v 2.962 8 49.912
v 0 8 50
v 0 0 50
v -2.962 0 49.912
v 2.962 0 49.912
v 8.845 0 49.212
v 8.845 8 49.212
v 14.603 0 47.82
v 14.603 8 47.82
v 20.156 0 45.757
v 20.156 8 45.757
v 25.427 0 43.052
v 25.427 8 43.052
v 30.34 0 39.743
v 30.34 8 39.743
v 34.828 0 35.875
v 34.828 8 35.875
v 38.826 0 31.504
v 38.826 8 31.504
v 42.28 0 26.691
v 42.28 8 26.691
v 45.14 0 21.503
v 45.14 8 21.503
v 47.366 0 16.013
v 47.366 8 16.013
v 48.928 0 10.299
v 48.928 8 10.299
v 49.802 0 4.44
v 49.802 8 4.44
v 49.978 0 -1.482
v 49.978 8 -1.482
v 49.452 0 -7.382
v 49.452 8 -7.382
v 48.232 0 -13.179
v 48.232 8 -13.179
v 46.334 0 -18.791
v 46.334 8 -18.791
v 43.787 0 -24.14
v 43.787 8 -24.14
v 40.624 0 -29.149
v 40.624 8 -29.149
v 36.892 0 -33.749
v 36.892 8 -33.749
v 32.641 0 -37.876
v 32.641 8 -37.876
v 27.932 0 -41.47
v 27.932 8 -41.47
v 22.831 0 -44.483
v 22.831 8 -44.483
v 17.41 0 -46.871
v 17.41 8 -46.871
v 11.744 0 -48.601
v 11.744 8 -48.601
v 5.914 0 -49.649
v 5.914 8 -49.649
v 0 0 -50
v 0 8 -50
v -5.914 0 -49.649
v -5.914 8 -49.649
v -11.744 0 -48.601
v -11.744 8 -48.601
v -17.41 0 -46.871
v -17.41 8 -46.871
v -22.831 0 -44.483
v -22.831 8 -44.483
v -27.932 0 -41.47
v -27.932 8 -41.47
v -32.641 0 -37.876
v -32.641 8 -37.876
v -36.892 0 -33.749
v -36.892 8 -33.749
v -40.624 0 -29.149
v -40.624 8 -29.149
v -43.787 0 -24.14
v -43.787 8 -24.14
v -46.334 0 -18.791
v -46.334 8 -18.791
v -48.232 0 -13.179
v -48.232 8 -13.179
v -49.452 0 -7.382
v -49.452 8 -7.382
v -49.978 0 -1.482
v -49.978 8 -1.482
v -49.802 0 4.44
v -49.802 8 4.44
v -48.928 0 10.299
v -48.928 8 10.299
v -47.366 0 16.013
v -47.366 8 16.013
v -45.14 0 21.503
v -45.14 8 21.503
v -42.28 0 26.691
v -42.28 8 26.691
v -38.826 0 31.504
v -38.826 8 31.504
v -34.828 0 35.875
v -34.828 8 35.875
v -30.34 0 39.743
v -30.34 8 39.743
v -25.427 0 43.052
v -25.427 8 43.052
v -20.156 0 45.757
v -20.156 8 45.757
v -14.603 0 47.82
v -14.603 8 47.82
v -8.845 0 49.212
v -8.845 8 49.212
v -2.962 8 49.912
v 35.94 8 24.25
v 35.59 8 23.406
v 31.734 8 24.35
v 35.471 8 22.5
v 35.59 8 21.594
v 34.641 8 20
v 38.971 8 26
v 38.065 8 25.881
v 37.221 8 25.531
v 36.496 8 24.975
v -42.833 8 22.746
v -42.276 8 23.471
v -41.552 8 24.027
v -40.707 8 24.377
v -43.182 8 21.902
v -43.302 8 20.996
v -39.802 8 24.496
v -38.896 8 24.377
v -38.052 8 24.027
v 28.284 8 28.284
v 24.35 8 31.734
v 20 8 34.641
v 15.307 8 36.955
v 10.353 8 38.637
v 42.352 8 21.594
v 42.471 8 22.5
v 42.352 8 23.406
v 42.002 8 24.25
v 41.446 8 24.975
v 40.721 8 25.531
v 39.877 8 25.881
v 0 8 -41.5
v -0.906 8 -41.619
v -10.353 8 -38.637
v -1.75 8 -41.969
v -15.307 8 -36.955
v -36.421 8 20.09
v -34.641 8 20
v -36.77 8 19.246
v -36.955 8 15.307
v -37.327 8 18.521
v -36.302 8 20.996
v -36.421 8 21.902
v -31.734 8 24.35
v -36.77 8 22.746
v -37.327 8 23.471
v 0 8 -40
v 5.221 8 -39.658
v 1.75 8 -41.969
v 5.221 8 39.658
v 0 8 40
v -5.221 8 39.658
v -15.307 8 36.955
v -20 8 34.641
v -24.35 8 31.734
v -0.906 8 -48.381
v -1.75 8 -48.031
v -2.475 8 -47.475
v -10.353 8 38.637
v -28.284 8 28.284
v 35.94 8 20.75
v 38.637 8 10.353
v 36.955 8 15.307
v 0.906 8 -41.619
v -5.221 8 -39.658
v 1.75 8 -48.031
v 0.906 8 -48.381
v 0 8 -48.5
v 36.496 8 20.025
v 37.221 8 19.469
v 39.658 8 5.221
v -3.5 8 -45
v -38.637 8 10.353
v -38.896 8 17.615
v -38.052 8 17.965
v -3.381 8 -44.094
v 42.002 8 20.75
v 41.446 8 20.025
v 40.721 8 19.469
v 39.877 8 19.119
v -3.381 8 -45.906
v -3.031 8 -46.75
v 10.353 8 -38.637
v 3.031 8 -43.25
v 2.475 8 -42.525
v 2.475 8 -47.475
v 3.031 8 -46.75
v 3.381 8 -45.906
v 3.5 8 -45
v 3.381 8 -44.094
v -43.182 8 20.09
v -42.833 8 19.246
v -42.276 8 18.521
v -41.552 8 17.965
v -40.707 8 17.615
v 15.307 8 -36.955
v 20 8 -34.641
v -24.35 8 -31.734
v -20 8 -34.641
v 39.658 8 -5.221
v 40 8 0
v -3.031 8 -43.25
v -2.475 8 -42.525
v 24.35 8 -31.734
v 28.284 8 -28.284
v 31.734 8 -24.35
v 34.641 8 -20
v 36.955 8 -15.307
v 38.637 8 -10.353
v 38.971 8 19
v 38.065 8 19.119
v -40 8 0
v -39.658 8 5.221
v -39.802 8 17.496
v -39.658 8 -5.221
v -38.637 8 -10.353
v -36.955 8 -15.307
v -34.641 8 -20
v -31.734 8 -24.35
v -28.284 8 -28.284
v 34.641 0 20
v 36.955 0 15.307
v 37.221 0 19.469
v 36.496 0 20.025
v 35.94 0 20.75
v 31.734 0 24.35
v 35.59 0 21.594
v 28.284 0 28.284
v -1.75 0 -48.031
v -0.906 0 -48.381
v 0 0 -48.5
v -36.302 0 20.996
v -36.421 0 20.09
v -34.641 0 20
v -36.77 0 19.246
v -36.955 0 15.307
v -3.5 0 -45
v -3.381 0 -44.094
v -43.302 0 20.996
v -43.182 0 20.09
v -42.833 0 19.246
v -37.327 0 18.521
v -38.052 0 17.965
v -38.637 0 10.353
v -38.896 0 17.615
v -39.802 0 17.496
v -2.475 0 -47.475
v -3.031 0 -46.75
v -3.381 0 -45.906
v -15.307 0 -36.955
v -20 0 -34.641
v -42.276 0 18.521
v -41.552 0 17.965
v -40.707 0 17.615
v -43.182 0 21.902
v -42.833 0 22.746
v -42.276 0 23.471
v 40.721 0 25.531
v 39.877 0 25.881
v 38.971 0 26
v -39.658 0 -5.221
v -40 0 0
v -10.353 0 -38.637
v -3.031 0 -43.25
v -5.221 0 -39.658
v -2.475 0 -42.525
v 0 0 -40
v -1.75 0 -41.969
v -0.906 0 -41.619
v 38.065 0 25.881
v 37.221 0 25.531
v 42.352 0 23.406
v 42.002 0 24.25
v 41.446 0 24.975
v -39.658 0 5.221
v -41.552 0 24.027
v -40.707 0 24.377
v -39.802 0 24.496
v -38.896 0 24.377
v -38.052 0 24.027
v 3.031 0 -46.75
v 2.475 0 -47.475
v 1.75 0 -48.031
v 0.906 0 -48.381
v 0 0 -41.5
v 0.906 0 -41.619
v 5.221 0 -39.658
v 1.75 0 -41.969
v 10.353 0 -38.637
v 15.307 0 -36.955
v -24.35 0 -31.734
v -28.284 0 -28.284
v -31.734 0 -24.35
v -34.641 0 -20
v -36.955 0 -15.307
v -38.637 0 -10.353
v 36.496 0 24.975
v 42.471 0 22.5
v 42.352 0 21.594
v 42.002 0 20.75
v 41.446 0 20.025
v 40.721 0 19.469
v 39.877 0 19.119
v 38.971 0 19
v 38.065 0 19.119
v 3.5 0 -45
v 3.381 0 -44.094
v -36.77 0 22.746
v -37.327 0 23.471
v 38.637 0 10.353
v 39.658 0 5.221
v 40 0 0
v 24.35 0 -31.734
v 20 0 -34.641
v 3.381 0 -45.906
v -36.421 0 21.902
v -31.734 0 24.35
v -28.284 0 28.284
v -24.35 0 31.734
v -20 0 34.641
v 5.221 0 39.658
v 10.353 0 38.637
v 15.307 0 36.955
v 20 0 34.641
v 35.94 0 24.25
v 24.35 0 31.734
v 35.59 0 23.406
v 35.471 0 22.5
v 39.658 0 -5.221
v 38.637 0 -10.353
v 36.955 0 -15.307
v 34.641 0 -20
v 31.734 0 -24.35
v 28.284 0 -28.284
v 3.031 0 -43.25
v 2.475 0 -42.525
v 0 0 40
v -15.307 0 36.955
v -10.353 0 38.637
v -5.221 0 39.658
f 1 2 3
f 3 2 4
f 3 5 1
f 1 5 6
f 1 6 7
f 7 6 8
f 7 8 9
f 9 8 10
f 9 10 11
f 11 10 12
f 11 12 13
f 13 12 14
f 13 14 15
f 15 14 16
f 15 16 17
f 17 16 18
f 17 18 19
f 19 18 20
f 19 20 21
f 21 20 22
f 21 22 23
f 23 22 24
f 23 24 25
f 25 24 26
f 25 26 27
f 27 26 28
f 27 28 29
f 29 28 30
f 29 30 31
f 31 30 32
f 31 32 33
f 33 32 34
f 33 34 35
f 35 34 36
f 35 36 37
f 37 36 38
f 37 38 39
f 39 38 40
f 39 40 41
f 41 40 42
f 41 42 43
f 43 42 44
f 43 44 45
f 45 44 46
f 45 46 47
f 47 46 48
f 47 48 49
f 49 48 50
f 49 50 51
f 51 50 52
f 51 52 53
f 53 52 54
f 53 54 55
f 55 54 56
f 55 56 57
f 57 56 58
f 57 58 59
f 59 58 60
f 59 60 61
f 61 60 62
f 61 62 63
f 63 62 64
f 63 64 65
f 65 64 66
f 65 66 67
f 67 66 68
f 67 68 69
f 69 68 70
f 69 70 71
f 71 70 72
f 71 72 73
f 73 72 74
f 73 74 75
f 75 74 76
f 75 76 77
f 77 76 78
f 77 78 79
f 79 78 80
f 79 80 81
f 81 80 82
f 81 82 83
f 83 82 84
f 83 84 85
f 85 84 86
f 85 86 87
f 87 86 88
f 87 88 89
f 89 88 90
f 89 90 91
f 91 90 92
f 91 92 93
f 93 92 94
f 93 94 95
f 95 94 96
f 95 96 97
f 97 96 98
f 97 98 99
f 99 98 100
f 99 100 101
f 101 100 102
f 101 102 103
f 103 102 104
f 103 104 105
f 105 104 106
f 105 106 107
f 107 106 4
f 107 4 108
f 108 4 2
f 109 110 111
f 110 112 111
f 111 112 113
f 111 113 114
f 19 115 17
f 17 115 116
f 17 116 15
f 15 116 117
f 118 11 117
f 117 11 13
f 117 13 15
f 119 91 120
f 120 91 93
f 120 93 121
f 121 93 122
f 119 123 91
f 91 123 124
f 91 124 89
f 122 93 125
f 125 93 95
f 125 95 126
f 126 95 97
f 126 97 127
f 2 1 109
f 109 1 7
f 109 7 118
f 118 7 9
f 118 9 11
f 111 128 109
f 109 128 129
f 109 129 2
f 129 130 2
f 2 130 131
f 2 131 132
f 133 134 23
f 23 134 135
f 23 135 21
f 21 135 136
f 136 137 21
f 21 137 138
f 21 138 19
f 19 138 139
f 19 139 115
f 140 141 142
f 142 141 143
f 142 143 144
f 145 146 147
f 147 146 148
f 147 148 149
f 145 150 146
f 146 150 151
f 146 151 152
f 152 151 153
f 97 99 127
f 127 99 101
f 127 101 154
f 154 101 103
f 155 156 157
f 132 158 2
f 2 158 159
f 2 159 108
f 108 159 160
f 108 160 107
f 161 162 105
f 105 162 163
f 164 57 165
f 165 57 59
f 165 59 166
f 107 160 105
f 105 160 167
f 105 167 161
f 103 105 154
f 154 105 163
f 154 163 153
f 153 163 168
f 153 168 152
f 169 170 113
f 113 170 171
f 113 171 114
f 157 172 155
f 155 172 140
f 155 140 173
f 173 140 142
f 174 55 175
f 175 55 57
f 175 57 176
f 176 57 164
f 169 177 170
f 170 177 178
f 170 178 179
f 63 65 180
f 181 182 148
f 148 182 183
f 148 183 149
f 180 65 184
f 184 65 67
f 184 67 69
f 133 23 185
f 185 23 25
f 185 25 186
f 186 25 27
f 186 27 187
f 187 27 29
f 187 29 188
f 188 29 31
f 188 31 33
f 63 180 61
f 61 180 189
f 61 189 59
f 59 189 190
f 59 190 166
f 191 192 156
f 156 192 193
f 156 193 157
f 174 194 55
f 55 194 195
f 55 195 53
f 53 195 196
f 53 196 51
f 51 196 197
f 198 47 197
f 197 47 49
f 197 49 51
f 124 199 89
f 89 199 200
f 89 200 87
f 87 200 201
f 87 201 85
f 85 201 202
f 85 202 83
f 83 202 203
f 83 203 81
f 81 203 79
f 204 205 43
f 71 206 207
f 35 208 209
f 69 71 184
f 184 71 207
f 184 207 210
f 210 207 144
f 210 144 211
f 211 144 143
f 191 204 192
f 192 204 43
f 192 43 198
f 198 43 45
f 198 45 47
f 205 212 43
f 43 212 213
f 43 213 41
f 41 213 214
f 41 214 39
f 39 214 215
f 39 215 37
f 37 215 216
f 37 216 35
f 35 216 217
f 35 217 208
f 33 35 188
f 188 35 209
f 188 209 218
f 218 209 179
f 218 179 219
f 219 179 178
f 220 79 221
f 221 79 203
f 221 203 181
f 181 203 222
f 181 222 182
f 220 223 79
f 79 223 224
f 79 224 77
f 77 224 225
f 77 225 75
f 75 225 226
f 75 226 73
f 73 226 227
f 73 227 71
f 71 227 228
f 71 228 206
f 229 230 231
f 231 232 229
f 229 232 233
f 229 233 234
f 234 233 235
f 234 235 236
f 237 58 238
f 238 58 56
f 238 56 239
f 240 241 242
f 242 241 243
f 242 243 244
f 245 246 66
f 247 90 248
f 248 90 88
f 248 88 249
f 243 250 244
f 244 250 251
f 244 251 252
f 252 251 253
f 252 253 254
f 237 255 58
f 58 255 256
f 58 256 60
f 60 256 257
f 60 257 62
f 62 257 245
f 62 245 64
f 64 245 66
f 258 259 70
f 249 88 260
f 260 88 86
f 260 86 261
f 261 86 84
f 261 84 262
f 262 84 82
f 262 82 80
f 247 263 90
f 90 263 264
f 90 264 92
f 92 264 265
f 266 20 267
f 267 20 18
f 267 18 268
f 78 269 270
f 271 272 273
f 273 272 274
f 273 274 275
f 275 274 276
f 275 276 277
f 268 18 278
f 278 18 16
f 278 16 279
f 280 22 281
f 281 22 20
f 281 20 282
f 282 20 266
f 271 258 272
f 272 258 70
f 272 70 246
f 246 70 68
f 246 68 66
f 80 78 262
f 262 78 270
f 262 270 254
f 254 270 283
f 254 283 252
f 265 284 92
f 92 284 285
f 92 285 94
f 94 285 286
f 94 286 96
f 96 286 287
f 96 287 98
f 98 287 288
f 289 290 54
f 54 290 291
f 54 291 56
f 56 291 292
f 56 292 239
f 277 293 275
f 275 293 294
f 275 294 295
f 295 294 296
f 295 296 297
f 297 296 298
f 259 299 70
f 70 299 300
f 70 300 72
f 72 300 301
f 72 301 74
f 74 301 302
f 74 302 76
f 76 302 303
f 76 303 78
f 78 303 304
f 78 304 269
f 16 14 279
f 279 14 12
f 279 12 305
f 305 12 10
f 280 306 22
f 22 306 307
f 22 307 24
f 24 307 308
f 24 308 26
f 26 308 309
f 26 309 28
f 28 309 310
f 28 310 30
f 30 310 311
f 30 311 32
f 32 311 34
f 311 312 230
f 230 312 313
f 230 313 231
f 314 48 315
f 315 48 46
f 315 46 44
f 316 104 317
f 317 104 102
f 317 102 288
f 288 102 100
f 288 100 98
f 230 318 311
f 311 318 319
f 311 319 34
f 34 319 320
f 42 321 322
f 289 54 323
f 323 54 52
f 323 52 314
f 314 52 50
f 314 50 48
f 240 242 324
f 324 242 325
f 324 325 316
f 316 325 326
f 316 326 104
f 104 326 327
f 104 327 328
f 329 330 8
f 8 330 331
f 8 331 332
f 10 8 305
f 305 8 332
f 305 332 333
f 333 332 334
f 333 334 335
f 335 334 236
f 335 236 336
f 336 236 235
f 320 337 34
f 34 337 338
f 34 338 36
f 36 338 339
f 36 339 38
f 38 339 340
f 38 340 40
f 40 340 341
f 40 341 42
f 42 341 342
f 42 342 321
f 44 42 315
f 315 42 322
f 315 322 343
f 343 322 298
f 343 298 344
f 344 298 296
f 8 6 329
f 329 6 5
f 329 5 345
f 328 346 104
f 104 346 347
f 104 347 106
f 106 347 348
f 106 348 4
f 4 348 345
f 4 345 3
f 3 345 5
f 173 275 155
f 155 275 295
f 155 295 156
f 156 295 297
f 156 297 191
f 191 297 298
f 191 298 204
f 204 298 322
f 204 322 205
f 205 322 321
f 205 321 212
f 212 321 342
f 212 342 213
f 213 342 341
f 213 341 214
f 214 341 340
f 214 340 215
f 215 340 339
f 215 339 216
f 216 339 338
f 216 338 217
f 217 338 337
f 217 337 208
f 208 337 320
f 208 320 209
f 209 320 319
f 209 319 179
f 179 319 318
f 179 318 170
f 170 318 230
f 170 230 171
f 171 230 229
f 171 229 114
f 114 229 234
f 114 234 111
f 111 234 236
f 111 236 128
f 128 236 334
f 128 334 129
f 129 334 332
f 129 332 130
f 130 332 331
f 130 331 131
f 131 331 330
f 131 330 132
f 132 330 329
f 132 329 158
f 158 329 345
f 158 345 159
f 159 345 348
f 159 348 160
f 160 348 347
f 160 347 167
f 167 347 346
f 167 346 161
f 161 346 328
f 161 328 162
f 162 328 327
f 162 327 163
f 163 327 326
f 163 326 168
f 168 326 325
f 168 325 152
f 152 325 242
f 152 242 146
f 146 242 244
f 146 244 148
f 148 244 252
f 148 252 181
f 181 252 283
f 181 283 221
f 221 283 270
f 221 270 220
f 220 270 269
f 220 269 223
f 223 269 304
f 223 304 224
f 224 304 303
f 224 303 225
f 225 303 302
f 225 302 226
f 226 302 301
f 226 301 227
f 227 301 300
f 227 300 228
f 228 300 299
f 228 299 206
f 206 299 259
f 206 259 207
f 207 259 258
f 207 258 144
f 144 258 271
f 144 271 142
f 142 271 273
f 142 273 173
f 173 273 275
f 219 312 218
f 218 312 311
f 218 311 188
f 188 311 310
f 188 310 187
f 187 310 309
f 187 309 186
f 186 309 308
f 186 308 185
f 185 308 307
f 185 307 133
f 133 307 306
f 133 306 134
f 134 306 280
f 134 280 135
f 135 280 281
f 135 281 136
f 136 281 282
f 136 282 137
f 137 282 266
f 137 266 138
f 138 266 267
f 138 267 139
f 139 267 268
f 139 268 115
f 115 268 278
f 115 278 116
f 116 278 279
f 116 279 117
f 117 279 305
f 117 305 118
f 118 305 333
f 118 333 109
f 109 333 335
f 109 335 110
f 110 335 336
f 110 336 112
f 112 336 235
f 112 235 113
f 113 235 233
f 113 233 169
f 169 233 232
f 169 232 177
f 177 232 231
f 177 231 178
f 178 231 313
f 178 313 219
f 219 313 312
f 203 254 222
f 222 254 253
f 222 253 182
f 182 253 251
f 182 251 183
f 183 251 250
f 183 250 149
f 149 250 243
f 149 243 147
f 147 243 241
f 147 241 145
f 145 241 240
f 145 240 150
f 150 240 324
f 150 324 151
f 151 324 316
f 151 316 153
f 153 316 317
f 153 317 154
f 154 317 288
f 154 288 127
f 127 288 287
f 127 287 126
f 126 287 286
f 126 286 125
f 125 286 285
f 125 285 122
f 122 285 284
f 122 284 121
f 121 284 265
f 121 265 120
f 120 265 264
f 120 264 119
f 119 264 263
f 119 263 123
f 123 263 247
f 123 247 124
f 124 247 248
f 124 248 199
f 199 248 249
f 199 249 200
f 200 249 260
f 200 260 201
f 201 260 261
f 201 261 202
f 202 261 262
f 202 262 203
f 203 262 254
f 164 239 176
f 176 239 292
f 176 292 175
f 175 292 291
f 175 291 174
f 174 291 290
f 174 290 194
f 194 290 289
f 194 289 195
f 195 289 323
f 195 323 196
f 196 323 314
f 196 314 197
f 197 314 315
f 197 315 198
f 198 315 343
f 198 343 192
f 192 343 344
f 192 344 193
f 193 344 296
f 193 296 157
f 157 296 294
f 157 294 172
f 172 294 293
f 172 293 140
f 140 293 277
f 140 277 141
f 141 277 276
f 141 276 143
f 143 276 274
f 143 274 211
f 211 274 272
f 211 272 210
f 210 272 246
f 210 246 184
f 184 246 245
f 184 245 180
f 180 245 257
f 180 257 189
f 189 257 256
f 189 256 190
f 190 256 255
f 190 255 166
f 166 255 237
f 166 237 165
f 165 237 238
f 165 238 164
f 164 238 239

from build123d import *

# Parameters (mm, degrees)
SKIZZE2_R                       = 50
SKIZZE2_R_2                     = 2
AUFSATZ_LINEAR_AUSTRAGEN1_DEPTH = 8
SCHNITT_LINEAR_AUSTRAGEN2_DEPTH = 3
SKIZZE39_R                      = 40
SCHNITT_LINEAR_AUSTRAGEN3_DEPTH = 10
SKIZZE10_R                      = 3.5
SCHNITT_LINEAR_AUSTRAGEN4_DEPTH = 10


with BuildPart() as part:
    # Skizze2 → Aufsatz-Linear austragen1 (new body)
    with BuildSketch(Plane(origin=(0, 0, 0), x_dir=(1, 0, 0), z_dir=(0, 1, 0))):
        with Locations(Location((0, 0, 0), (0, 0, 270))):
            Circle(SKIZZE2_R)
        with Locations(Location((38.97114317, -22.5, 0), (0, 0, 270))):
            Circle(SKIZZE2_R_2, mode=Mode.SUBTRACT)
        with Locations(Location((-39.80150929, -20.996186754, 0), (0, 0, 270))):
            Circle(SKIZZE2_R_2, mode=Mode.SUBTRACT)
        with Locations(Location((0, 45, 0), (0, 0, 270))):
            Circle(SKIZZE2_R_2, mode=Mode.SUBTRACT)
        with Locations(Location((0, -35, 0), (0, 0, 270))):
            Circle(SKIZZE2_R_2, mode=Mode.SUBTRACT)
        with Locations(Location((0, -27.5, 0), (0, 0, 270))):
            Circle(SKIZZE2_R_2, mode=Mode.SUBTRACT)
    extrude(amount=AUFSATZ_LINEAR_AUSTRAGEN1_DEPTH)

    # Skizze9 → Schnitt-Linear austragen2 (cut)
    with BuildSketch(Plane(origin=(0, 8, 0), x_dir=(1, 0, 0), z_dir=(0, 1, 0))):
        with BuildLine():
            Line((-6, -39.531216002), (-6, -22.531216002))
            Line((-6, -22.531216002), (6, -22.531216002))
            Line((6, -22.531216002), (6, -39.531216002))
            ThreePointArc((6, -39.531216002), (0, 39.983959767), (-6, -39.531216002))
        make_face()
    extrude(amount=-SCHNITT_LINEAR_AUSTRAGEN2_DEPTH, mode=Mode.SUBTRACT)

    # Skizze39 → Schnitt-Linear austragen3 (cut)
    with BuildSketch(Plane(origin=(0, 0, 0), x_dir=(-1, 0, 0), z_dir=(0, -1, 0))):
        with Locations(Location((0, 0, 0), (0, 0, 90))):
            Circle(SKIZZE39_R)
    extrude(amount=-SCHNITT_LINEAR_AUSTRAGEN3_DEPTH, mode=Mode.SUBTRACT)

    # Skizze10 → Schnitt-Linear austragen4 (cut)
    with BuildSketch(Plane.XZ):
        with Locations(Location((38.97114317, 22.5, 0), (0, 0, 270))):
            Circle(SKIZZE10_R)
        with Locations(Location((-39.80150929, 20.996186754, 0), (0, 0, 270))):
            Circle(SKIZZE10_R)
        with Locations(Location((0, -45, 0), (0, 0, 270))):
            Circle(SKIZZE10_R)
    extrude(amount=-SCHNITT_LINEAR_AUSTRAGEN4_DEPTH, mode=Mode.SUBTRACT)


solid = part.part
